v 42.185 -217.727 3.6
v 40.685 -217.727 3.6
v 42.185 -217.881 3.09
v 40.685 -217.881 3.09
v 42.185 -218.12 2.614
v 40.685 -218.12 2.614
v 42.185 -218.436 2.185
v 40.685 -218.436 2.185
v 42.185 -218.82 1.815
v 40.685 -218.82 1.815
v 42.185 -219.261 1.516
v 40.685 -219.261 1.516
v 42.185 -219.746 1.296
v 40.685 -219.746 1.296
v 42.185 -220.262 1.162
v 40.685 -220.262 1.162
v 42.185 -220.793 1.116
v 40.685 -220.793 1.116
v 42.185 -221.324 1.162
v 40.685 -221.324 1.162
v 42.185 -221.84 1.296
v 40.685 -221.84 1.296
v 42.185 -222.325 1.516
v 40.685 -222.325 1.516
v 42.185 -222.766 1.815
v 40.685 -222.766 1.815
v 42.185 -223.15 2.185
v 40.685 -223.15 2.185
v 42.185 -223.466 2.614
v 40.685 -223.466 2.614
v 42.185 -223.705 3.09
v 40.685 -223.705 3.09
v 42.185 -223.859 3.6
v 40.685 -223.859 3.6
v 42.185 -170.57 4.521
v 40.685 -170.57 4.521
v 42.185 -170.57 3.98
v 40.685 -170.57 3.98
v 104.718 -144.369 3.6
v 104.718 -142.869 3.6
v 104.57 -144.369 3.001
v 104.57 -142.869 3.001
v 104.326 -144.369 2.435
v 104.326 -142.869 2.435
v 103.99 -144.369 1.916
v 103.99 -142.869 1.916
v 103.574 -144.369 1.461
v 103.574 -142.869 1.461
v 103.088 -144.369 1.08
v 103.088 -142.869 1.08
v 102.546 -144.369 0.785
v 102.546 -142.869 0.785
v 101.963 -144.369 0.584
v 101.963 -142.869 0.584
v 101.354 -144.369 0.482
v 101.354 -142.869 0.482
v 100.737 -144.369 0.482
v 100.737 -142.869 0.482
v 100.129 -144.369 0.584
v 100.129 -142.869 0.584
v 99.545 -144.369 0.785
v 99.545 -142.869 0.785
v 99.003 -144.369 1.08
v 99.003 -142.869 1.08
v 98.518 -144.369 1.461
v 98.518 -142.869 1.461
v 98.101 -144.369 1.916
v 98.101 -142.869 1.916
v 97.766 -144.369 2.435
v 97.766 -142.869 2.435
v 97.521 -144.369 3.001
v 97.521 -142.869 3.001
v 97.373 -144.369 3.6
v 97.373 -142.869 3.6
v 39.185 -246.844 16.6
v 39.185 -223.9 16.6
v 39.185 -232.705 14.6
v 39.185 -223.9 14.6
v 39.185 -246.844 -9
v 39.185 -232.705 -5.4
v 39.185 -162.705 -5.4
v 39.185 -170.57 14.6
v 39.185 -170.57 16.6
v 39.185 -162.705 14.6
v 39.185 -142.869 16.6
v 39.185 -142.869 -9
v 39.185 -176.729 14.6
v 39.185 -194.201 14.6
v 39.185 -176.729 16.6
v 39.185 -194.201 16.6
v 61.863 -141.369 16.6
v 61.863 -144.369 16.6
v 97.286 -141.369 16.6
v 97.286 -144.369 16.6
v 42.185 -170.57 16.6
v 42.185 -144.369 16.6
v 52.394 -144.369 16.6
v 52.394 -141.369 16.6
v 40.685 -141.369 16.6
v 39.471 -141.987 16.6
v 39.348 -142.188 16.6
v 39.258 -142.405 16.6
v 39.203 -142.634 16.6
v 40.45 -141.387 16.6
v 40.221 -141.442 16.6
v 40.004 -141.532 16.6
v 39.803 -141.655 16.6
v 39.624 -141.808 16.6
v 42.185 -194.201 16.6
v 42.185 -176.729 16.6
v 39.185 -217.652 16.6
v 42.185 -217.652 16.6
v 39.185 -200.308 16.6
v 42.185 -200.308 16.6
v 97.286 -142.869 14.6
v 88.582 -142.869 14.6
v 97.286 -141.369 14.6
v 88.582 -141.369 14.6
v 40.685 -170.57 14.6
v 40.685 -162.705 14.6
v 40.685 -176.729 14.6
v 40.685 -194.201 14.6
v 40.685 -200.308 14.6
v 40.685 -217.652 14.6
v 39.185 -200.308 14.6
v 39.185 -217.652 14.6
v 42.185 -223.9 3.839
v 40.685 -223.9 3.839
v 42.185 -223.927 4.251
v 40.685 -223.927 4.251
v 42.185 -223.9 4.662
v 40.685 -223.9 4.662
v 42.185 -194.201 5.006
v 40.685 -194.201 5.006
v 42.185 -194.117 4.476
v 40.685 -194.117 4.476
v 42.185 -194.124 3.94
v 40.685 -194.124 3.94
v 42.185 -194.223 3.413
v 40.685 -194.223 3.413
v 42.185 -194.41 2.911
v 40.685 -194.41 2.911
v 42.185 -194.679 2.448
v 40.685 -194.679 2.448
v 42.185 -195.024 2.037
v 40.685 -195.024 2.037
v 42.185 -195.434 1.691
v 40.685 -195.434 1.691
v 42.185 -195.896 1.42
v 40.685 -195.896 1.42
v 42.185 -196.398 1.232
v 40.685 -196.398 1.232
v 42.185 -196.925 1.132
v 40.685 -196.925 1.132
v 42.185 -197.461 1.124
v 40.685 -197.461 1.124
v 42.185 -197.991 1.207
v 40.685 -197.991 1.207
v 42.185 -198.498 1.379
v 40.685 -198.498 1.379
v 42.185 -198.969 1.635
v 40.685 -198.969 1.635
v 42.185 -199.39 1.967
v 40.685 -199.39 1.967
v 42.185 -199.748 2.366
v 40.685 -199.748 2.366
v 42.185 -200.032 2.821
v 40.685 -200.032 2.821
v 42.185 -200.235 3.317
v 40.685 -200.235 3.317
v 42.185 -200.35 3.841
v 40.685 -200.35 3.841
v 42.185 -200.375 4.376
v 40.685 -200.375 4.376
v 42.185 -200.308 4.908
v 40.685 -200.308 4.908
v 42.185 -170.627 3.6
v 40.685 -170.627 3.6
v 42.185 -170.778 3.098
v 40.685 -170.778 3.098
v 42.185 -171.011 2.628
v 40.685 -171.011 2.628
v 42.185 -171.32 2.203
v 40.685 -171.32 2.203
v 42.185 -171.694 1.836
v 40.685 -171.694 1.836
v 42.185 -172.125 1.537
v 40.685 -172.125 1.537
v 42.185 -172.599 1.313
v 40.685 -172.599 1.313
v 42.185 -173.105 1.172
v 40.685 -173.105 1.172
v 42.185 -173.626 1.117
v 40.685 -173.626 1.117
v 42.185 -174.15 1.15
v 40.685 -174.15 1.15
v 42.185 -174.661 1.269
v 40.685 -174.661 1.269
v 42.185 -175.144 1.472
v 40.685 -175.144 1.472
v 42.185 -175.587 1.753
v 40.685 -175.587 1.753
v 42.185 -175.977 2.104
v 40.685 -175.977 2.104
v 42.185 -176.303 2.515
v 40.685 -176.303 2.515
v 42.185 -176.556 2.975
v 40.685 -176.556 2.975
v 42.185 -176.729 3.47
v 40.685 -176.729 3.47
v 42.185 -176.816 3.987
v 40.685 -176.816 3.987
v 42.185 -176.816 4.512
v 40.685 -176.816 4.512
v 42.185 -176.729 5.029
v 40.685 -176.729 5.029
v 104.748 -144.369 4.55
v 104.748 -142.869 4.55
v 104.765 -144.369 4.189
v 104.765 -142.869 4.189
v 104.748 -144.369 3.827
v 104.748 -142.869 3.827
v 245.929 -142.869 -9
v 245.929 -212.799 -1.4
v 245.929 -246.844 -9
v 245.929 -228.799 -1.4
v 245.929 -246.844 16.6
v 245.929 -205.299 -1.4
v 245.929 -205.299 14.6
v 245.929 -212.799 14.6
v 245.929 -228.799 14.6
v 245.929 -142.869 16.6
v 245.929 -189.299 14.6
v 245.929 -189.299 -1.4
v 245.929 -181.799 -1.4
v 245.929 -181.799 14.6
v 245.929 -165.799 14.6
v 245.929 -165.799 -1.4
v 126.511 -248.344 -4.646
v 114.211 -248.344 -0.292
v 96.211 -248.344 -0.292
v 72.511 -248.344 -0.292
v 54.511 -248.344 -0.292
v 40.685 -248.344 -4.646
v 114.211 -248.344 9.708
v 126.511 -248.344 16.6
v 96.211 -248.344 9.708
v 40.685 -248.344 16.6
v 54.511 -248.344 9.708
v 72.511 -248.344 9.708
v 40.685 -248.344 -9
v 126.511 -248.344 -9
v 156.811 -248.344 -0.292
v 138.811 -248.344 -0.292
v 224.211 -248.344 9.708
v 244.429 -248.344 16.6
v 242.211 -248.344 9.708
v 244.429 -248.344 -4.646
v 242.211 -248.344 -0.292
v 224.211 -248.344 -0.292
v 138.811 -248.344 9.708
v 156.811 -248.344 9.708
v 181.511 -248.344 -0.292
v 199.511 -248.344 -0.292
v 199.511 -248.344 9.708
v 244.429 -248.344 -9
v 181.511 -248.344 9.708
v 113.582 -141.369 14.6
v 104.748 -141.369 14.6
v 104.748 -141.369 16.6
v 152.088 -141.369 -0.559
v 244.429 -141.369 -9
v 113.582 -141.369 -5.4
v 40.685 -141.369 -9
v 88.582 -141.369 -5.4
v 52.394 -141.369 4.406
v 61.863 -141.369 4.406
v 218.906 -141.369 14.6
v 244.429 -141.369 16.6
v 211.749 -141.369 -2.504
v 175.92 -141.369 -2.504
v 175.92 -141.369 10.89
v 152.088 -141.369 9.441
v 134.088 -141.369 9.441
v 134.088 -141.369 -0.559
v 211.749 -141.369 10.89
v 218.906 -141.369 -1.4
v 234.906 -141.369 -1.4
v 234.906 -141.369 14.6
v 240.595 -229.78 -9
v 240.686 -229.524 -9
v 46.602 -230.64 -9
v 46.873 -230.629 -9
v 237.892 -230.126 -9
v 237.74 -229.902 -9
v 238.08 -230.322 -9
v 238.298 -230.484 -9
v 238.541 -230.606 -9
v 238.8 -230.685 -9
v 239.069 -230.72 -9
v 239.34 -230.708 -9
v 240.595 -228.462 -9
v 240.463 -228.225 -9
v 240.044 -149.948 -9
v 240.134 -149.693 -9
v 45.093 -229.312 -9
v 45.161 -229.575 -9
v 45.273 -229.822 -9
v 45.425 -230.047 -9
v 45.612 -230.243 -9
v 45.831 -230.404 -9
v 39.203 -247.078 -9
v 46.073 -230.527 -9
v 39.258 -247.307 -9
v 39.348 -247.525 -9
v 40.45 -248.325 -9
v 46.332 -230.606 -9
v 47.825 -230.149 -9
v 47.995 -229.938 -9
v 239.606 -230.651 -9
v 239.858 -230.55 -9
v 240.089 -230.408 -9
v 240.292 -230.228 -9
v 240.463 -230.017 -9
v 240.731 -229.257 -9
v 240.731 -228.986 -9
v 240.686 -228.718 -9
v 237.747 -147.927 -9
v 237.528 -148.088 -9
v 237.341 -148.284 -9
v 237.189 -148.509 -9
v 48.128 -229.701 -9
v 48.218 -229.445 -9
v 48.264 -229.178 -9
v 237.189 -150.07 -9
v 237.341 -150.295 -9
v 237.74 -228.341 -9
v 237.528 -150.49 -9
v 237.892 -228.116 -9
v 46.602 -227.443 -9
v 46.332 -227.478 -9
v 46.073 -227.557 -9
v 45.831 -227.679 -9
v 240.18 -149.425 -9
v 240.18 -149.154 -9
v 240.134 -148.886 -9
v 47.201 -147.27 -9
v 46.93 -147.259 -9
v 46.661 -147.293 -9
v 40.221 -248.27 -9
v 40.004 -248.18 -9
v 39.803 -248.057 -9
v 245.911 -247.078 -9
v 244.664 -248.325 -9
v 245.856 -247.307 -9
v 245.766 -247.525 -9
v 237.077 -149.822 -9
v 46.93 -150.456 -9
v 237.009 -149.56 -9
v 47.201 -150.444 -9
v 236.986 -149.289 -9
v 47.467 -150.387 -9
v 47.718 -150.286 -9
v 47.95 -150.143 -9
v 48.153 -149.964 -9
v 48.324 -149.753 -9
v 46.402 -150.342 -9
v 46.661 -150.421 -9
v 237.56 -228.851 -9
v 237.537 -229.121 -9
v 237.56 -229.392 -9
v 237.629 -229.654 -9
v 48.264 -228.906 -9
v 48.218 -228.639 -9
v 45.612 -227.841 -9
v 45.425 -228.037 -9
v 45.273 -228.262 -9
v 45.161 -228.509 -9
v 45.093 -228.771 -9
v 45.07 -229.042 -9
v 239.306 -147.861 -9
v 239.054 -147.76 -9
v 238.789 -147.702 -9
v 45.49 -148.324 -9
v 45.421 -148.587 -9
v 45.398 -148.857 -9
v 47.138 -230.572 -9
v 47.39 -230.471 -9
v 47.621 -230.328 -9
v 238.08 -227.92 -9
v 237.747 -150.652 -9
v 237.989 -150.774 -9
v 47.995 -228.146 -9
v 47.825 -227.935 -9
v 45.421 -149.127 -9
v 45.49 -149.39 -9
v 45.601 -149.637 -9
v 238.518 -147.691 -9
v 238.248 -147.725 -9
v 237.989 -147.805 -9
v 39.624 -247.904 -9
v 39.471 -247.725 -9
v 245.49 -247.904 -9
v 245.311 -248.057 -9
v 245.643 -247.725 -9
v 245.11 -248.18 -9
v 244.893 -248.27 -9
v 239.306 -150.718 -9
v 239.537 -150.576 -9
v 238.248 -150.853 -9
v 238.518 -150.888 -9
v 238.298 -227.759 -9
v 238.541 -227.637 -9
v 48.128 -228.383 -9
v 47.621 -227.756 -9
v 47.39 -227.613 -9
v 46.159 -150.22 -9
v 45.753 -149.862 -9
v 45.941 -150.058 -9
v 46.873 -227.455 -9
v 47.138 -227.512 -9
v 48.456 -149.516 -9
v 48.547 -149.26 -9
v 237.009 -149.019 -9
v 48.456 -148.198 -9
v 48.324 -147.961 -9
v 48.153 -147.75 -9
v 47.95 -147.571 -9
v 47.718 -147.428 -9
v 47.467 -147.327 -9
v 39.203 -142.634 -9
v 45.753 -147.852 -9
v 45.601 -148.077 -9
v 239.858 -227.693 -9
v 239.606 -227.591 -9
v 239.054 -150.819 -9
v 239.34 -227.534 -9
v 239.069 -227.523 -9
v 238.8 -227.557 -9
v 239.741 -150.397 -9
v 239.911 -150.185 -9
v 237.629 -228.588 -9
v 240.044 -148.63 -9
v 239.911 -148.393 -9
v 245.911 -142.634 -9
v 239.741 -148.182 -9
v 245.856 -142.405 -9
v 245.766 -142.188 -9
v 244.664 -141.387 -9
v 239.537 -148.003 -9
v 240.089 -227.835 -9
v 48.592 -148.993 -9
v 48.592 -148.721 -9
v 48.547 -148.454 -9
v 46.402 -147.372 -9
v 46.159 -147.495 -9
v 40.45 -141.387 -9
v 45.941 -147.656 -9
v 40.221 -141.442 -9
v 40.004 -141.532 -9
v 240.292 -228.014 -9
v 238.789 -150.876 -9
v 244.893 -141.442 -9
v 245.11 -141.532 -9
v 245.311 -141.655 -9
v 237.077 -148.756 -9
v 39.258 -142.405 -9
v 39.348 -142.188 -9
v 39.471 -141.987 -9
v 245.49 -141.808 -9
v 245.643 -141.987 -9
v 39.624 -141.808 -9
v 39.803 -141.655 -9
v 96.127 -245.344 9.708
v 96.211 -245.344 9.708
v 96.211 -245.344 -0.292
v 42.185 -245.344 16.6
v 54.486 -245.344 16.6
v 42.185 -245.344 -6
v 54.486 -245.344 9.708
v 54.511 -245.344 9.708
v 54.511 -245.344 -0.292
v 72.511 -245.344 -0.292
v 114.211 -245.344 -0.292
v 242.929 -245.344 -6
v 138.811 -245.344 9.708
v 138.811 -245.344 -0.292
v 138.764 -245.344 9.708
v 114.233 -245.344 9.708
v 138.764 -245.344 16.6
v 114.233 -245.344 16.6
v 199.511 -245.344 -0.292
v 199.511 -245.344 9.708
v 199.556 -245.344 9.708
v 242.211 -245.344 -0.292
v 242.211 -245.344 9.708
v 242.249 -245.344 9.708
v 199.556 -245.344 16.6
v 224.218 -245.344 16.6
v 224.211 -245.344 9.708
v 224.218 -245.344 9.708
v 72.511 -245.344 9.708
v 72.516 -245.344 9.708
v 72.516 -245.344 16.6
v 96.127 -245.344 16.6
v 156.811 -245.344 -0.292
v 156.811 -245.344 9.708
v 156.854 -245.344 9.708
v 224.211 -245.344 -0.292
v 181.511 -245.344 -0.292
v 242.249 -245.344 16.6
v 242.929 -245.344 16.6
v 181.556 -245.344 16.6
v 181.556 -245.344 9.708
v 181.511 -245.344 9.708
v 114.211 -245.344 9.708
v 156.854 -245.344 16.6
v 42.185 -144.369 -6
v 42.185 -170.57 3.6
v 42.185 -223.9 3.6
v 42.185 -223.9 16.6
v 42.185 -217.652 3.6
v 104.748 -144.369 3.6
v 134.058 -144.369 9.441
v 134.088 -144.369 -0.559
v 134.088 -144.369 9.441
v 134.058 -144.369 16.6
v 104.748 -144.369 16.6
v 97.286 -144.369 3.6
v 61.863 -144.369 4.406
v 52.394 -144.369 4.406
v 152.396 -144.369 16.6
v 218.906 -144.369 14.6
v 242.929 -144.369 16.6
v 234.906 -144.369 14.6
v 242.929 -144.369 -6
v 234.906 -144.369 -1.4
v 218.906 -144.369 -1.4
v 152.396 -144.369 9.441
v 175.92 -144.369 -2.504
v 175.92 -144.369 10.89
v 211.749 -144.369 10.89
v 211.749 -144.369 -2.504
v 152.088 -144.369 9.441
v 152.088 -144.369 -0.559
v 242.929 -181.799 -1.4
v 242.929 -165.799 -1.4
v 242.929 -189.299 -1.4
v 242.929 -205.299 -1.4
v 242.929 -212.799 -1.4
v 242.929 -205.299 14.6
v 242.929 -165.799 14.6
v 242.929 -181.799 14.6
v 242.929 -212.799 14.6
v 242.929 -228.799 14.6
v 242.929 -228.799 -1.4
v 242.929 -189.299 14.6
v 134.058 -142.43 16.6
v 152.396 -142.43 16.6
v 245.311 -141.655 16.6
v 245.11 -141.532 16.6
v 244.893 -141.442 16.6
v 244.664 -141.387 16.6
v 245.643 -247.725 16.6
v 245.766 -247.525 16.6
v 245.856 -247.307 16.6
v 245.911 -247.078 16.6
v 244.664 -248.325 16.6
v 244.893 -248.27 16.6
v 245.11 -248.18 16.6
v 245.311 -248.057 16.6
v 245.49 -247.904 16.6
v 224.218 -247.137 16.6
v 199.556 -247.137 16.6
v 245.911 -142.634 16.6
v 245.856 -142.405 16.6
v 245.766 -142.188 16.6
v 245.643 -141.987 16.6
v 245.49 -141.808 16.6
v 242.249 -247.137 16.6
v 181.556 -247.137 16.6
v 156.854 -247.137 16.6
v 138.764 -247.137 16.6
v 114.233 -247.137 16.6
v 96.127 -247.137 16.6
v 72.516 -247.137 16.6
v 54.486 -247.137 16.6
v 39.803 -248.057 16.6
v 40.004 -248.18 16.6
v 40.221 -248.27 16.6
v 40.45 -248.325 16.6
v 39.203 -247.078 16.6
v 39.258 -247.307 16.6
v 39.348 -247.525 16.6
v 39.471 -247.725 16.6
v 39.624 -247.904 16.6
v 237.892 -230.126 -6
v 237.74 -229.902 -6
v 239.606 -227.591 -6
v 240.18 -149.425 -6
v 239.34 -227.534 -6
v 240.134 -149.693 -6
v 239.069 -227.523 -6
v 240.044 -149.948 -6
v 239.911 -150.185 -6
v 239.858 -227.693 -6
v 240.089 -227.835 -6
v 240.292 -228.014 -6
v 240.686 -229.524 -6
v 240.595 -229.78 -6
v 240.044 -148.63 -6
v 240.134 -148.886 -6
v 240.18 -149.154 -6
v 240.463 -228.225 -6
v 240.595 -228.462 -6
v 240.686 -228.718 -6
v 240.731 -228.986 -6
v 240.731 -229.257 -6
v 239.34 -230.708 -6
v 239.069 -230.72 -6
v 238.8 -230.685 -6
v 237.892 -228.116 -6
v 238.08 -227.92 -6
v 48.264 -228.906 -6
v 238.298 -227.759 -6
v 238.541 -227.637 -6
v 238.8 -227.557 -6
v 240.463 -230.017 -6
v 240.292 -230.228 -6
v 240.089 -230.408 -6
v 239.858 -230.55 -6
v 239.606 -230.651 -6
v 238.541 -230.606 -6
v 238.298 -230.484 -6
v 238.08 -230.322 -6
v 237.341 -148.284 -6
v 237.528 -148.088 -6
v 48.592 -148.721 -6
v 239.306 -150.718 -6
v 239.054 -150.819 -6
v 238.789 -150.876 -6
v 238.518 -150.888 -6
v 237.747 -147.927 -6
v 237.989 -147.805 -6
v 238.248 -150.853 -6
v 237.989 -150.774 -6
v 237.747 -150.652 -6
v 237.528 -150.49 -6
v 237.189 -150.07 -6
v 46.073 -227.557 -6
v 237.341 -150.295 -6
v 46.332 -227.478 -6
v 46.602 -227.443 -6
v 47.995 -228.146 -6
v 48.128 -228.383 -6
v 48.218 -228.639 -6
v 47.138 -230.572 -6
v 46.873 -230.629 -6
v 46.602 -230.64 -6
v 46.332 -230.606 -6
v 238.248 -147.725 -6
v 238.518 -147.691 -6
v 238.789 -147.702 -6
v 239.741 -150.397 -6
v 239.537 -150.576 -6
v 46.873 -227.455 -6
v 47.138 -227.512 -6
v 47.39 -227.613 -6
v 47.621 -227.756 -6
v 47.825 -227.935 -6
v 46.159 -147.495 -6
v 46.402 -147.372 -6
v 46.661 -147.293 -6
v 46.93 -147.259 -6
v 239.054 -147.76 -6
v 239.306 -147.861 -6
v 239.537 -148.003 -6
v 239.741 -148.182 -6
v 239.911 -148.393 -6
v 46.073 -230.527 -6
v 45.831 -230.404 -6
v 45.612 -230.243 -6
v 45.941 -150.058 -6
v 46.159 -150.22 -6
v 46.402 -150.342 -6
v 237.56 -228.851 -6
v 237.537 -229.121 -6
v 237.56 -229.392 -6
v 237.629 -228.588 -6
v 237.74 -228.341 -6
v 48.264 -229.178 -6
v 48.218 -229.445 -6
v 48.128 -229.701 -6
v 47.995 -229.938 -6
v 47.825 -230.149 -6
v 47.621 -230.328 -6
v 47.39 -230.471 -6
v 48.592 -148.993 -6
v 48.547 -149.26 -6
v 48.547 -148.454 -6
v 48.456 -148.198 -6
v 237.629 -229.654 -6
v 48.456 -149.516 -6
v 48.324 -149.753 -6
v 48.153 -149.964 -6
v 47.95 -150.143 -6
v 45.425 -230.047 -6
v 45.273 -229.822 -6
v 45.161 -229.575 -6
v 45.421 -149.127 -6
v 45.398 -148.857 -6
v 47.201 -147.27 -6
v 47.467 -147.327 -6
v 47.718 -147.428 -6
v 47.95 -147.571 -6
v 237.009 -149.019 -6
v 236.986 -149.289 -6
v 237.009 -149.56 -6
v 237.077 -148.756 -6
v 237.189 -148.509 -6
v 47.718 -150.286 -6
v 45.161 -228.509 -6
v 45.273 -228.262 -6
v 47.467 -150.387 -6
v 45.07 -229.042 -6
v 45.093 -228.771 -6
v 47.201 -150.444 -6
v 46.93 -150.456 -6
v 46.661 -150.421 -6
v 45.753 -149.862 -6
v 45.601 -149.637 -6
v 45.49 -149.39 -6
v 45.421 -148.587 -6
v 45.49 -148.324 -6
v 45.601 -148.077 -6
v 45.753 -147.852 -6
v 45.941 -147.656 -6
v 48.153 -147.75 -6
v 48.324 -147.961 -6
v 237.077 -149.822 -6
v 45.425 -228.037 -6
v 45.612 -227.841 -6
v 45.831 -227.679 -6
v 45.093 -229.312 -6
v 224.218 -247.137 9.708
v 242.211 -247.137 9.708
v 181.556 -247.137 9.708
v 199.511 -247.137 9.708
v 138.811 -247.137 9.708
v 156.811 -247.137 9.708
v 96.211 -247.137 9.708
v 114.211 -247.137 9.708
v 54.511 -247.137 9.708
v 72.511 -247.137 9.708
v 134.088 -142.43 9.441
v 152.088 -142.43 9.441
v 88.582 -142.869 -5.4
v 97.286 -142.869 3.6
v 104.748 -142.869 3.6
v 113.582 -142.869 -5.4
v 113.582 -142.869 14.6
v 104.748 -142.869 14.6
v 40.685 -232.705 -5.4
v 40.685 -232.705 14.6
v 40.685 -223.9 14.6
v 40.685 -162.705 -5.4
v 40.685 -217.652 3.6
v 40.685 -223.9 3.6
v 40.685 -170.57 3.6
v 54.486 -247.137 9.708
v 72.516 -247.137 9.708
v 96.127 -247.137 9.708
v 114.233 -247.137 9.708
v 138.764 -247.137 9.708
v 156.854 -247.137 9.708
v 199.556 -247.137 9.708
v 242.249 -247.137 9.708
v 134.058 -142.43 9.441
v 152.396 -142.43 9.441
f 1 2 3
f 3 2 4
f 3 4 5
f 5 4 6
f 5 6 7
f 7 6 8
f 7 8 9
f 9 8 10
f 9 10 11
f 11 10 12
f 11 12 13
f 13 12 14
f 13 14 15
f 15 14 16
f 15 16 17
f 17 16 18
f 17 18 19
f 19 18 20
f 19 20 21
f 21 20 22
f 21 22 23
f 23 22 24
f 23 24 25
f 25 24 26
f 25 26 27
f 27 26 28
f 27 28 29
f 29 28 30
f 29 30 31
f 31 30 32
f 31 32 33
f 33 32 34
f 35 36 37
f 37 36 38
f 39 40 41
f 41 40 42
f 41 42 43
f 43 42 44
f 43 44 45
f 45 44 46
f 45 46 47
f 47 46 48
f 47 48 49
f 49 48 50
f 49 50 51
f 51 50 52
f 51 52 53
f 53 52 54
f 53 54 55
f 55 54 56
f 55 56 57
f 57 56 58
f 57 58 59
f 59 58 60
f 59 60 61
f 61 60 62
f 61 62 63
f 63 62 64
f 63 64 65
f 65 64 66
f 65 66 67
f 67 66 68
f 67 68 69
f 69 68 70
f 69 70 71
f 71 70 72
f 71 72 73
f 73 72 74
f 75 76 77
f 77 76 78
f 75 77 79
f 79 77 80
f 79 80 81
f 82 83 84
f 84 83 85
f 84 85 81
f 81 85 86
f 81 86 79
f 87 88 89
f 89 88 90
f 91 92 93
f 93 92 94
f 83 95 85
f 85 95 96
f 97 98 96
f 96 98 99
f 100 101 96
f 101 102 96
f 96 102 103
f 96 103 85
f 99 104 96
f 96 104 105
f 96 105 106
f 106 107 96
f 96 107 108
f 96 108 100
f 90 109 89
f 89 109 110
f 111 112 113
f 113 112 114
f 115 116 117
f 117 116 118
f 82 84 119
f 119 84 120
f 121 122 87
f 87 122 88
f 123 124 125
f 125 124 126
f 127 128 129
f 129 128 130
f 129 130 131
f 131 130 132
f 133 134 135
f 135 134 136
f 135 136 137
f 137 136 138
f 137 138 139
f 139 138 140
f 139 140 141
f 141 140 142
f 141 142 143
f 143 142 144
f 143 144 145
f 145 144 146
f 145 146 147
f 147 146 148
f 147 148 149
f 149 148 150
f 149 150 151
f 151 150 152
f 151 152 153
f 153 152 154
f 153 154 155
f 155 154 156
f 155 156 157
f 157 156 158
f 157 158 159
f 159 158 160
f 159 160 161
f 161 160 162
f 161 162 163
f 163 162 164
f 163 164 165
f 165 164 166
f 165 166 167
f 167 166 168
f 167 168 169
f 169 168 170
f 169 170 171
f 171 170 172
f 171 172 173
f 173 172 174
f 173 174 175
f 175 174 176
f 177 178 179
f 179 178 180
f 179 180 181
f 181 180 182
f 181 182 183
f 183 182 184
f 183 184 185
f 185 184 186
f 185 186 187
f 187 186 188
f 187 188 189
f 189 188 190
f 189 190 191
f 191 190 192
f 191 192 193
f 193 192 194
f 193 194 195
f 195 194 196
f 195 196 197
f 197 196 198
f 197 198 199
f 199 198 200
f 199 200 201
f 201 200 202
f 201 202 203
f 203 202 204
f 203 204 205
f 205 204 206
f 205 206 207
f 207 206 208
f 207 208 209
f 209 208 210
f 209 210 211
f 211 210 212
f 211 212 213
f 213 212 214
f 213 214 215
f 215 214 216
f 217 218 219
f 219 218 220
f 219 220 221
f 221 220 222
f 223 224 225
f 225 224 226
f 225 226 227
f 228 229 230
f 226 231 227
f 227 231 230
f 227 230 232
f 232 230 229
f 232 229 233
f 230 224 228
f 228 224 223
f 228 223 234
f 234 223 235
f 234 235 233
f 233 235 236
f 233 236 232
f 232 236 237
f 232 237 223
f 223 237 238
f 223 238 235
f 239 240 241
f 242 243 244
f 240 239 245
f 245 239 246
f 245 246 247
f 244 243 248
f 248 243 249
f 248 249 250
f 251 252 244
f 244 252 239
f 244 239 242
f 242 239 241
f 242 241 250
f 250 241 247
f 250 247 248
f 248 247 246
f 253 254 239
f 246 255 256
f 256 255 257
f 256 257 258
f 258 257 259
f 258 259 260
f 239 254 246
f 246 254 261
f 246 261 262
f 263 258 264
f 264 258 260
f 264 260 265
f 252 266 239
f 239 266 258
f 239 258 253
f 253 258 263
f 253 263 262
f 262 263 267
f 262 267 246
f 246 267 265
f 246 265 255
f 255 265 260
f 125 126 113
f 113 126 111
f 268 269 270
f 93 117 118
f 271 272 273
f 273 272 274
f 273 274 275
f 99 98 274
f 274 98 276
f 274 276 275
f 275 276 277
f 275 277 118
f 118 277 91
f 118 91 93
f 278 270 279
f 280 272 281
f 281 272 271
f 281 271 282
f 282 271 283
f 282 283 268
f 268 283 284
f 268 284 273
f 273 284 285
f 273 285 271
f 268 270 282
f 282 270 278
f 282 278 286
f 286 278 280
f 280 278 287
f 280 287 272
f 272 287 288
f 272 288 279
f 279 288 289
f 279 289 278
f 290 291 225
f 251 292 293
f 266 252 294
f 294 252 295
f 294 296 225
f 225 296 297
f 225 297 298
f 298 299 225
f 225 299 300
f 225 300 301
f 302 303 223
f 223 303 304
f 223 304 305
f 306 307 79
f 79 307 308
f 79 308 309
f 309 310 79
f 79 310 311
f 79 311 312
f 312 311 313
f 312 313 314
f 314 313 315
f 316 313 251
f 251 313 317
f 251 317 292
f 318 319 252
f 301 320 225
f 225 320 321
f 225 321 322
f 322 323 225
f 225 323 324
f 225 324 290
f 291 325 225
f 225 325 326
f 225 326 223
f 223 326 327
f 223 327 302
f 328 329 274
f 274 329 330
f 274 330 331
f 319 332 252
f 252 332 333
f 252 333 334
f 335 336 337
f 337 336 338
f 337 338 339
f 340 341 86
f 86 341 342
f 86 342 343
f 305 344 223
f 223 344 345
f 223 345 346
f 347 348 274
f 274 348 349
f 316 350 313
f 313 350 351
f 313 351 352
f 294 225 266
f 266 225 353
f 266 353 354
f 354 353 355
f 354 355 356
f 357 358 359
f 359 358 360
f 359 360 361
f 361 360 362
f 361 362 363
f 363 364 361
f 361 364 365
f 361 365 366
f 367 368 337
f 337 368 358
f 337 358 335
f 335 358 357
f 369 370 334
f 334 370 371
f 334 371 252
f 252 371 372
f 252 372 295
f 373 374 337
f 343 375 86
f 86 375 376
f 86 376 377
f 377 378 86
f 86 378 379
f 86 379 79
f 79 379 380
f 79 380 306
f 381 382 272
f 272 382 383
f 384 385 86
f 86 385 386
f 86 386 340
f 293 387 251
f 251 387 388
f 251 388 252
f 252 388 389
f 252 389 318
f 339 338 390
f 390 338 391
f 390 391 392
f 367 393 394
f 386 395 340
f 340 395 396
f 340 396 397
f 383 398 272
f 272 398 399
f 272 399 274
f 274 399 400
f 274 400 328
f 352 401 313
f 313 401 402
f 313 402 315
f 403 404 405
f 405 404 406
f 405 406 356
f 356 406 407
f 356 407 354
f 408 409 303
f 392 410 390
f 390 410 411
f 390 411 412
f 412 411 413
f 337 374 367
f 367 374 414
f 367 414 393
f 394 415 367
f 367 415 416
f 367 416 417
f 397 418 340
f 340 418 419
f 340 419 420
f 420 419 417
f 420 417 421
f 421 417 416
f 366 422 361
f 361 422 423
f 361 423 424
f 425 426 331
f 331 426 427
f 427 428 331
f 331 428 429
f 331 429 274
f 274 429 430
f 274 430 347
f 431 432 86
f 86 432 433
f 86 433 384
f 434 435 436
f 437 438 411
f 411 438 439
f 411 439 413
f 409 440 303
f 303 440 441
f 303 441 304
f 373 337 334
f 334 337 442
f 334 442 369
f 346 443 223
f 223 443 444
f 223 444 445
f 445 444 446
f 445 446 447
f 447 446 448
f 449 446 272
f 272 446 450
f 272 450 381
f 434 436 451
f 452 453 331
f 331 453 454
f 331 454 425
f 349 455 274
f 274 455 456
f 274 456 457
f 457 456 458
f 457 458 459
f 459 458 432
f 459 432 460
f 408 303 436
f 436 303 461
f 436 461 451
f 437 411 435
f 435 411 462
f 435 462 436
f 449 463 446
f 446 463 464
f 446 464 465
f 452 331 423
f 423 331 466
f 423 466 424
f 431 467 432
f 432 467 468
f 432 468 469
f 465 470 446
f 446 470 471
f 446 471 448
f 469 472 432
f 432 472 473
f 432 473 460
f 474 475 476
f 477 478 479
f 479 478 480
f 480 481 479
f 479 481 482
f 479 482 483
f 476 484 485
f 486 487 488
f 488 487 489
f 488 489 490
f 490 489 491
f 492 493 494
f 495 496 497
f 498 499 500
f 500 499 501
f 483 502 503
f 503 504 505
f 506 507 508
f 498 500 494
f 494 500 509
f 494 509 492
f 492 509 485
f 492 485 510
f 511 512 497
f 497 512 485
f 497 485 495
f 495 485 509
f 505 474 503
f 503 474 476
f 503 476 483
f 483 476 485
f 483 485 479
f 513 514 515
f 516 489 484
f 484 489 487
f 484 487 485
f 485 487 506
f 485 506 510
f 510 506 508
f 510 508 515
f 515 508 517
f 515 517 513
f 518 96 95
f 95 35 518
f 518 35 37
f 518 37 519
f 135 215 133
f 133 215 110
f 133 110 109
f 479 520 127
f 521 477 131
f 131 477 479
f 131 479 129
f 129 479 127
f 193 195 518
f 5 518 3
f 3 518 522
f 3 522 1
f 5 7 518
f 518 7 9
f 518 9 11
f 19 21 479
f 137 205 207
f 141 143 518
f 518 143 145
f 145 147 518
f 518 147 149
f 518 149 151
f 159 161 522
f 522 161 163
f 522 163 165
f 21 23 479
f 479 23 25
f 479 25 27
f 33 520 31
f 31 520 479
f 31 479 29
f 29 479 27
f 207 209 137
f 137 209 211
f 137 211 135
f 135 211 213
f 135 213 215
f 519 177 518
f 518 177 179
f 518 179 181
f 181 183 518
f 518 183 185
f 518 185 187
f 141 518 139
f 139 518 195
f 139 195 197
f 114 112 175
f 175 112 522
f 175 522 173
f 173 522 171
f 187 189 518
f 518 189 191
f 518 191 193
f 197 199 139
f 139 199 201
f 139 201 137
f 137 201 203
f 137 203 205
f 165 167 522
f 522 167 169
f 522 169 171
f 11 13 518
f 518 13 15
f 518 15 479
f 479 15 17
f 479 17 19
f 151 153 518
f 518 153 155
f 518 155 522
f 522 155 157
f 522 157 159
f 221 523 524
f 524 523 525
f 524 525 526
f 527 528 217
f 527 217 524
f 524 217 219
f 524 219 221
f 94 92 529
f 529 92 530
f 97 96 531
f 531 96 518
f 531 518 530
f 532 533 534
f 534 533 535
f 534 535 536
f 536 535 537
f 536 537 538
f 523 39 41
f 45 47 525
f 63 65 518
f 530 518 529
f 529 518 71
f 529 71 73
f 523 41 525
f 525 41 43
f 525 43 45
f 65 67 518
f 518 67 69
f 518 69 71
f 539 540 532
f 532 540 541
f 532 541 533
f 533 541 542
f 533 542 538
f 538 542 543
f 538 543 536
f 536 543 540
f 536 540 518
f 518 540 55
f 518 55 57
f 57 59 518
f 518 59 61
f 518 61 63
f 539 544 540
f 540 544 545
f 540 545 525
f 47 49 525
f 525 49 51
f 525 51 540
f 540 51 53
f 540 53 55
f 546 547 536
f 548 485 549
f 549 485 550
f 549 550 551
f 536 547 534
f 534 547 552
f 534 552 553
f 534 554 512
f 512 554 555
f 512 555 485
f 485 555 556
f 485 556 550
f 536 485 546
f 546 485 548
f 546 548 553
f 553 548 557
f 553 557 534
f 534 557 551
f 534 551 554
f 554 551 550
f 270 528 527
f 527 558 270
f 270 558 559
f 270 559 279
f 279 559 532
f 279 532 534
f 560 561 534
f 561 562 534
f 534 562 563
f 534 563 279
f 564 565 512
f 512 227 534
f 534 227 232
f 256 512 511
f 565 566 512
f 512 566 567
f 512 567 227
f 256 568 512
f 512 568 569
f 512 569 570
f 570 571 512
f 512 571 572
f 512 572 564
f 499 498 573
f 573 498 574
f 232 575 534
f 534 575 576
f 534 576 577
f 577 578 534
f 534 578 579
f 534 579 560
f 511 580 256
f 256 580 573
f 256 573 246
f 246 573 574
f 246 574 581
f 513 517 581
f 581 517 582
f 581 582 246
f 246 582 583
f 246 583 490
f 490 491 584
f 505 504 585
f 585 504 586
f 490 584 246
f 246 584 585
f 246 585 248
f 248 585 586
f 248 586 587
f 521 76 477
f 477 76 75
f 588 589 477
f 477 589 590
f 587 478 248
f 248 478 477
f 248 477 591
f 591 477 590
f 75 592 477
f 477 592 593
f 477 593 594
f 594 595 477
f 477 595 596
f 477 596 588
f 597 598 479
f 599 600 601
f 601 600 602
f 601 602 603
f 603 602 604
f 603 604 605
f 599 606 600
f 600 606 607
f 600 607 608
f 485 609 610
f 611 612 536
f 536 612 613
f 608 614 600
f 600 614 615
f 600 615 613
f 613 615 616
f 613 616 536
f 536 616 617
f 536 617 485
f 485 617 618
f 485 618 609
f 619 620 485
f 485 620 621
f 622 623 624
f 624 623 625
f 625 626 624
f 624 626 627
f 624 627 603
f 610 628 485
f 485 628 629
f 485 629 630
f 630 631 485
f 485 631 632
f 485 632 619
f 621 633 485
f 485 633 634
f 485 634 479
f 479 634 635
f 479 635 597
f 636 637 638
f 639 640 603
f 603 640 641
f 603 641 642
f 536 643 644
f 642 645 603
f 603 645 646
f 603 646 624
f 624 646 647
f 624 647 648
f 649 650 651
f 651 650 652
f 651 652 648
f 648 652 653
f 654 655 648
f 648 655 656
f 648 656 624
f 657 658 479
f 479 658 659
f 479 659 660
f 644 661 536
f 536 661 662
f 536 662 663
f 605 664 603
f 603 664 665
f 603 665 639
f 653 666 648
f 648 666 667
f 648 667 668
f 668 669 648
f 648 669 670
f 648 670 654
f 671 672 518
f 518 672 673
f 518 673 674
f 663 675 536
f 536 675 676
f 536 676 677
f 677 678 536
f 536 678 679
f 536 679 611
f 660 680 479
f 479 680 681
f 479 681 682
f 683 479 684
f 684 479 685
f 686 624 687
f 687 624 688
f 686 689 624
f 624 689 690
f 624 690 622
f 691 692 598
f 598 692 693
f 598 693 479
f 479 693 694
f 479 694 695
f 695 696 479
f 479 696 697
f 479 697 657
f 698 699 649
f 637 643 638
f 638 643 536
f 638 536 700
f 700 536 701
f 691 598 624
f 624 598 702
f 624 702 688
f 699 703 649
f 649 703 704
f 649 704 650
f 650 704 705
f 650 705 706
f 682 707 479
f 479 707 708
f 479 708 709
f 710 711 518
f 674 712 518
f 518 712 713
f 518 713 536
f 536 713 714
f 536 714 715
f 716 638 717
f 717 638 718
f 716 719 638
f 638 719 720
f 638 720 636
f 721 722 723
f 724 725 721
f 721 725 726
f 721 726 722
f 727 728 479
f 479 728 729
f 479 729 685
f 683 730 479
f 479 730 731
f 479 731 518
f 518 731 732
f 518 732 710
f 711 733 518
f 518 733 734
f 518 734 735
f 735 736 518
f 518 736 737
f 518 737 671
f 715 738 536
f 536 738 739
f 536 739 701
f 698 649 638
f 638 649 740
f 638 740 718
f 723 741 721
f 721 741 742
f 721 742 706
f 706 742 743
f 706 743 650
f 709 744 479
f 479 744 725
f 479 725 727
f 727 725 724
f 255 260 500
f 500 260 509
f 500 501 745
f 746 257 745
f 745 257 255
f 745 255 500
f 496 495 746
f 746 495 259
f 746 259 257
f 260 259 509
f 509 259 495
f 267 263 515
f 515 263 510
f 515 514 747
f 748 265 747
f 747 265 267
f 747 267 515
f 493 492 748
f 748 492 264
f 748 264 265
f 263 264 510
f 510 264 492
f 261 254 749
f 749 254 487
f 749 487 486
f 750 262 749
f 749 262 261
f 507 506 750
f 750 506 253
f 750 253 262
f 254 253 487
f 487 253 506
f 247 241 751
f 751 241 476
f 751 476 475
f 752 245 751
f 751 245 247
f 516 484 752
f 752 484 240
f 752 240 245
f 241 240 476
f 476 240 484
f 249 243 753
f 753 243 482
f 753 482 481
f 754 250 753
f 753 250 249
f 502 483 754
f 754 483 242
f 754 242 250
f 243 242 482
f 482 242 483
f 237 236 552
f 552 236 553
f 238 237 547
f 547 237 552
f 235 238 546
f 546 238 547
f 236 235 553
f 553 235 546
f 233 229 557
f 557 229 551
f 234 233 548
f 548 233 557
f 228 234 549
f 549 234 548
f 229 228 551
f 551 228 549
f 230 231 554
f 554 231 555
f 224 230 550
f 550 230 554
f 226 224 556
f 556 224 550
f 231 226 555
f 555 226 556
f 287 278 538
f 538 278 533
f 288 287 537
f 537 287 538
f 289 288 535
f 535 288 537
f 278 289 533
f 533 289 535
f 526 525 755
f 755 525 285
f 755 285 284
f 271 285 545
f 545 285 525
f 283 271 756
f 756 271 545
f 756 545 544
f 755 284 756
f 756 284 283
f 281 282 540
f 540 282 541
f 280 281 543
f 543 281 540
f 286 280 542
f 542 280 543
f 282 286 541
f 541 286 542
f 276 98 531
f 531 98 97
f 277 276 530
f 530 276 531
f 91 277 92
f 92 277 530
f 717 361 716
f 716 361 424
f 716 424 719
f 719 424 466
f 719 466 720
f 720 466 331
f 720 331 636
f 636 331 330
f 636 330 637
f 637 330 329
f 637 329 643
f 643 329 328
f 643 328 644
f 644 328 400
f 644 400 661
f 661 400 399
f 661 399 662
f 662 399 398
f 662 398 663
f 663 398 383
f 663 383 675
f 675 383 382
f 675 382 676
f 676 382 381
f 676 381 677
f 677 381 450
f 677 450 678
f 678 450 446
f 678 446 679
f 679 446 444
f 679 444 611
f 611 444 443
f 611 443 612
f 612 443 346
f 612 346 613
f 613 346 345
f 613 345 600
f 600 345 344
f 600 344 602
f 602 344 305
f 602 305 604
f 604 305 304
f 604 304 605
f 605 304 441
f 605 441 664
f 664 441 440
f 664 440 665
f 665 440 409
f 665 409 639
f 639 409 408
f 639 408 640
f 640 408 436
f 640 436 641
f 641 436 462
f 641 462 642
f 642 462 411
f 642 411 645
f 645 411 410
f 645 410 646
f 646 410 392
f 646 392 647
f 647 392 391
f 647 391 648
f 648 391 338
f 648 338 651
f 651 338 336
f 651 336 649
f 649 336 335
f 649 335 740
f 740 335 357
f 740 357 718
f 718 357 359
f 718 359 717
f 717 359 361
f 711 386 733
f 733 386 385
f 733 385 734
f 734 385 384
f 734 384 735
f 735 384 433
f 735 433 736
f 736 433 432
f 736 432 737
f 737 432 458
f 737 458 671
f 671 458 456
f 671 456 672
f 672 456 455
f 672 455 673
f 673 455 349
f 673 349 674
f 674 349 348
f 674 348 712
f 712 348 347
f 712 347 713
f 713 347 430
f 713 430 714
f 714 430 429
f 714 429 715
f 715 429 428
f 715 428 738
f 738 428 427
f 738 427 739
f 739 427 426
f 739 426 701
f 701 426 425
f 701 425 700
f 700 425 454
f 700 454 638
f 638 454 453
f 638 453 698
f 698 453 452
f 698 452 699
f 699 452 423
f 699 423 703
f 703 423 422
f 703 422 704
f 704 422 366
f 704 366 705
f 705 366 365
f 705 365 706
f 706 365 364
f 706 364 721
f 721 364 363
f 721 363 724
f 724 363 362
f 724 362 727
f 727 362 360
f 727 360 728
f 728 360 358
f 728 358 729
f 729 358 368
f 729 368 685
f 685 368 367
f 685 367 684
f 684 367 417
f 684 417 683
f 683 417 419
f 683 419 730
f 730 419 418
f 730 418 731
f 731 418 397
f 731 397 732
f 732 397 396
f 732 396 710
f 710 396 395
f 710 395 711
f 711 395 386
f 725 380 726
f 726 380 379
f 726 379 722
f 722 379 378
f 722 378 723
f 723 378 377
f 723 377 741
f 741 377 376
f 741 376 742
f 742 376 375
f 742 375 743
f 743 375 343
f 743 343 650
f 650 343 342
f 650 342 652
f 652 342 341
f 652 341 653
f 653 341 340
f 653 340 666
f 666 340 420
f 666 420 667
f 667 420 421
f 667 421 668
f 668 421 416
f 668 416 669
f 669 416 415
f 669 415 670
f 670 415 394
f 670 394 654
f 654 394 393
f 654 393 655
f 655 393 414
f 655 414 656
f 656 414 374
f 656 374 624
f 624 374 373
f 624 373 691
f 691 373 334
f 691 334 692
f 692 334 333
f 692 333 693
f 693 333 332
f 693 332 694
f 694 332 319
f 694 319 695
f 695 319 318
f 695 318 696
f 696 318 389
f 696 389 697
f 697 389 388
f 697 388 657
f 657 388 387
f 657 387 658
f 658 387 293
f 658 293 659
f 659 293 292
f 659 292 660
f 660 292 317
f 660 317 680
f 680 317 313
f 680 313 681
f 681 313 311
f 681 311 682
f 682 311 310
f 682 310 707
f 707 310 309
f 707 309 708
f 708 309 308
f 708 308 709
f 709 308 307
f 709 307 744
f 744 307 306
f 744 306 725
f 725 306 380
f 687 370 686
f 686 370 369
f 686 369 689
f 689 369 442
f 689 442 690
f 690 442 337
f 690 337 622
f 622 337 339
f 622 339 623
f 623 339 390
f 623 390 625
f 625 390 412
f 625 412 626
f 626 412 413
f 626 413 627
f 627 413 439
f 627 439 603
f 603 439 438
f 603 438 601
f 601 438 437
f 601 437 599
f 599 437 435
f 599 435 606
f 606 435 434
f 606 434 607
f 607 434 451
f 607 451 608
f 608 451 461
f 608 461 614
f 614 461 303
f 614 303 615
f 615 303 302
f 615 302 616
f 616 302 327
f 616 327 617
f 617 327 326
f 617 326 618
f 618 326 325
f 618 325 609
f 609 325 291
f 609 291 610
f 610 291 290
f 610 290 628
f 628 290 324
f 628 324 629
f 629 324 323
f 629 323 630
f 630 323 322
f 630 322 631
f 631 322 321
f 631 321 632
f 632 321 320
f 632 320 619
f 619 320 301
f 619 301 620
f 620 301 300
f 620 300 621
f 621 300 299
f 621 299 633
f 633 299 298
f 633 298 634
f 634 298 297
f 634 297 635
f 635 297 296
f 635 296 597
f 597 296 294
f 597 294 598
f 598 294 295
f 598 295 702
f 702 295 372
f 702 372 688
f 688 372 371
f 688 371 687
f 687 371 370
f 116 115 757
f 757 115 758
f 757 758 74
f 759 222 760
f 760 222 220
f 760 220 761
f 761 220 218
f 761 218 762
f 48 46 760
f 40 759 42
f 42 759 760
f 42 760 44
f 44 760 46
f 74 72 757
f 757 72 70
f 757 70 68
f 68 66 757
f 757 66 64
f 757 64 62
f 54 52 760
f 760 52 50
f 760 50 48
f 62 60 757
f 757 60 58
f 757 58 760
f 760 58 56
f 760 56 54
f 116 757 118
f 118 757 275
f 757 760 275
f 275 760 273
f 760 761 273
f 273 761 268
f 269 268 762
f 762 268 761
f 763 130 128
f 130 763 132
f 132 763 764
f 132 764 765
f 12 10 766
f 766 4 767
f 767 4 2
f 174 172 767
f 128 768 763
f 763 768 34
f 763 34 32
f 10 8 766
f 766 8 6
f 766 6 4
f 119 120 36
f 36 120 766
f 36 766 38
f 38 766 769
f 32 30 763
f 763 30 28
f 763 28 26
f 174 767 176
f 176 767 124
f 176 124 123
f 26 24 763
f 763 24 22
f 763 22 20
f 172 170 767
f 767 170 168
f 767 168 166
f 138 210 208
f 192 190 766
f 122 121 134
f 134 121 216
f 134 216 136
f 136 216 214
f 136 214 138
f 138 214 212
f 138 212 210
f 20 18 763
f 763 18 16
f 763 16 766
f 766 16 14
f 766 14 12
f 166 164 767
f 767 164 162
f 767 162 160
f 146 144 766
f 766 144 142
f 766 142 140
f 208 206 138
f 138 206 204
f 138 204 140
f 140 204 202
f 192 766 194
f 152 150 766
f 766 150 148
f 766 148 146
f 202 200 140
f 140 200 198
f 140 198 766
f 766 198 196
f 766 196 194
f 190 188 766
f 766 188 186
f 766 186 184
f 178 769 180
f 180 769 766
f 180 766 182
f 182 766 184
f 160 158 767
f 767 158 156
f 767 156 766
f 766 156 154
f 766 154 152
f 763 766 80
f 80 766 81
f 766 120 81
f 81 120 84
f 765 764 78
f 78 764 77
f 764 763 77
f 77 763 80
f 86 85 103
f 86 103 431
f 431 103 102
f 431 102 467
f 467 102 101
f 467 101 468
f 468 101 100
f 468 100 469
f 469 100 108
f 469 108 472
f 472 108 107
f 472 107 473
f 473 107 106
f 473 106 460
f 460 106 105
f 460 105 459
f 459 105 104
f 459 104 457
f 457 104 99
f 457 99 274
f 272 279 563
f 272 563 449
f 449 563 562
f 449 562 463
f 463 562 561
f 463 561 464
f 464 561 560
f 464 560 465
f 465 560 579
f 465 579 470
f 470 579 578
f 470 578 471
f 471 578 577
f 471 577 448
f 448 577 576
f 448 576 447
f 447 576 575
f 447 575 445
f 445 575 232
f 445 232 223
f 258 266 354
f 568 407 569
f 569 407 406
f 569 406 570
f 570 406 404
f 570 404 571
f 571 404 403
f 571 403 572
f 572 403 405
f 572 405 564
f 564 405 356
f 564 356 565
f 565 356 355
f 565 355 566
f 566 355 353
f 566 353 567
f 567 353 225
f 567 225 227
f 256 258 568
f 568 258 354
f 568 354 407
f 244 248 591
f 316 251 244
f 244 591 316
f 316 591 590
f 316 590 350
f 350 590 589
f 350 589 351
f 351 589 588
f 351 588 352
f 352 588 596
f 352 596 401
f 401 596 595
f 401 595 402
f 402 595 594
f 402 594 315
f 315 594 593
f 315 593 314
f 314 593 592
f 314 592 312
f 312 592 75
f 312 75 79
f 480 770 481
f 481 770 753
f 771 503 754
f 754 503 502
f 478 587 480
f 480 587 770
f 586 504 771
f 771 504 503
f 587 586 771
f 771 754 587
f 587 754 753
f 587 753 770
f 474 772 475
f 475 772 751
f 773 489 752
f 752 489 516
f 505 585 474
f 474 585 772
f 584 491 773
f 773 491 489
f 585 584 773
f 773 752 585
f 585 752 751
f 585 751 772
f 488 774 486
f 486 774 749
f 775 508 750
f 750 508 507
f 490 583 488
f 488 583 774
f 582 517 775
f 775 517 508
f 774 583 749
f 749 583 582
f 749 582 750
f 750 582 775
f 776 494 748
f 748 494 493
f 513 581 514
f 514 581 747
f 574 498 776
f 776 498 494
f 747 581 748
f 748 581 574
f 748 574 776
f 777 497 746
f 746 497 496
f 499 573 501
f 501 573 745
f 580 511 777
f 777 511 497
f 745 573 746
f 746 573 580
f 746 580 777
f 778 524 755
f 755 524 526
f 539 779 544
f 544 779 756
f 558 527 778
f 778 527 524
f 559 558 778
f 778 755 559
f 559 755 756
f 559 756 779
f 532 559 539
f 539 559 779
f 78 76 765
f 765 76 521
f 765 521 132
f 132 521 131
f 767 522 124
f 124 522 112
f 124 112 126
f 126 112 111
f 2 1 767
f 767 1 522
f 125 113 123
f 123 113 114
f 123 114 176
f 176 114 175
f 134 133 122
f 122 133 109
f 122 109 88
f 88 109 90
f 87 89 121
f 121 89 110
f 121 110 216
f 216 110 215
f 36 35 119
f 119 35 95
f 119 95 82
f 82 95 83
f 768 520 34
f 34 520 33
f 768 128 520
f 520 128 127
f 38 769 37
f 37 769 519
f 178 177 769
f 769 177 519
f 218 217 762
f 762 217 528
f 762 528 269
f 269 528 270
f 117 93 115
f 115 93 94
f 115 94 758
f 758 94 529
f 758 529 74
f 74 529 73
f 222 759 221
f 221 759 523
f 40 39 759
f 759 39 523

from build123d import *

# Parameters (mm, degrees)
SKETCH_1_W           = 206.744673609
SKETCH_1_H           = 106.97480061
EXTRUDE_1_DEPTH      = 3
SKETCH_3_W           = 200.744673609
SKETCH_3_H           = 100.97480061
EXTRUDE_2_DEPTH      = 22.6000508
SKETCH_4_W           = 18
SKETCH_4_H           = 10
CUT_EXTRUDE_1_DEPTH  = 5
SKETCH_6_W           = 16
SKETCH_6_H           = 16
CUT_EXTRUDE_2_DEPTH  = 5
SKETCH_7_W           = 16
SKETCH_7_H           = 16
CUT_EXTRUDE_3_DEPTH  = 5
SKETCH_8_W           = 18
SKETCH_8_H           = 10
CUT_EXTRUDE_4_DEPTH  = 5
SKETCH_9_W           = 35.828584262
SKETCH_9_H           = 13.394073463
CUT_EXTRUDE_5_DEPTH  = 5
SKETCH_10_R          = 3.719289999
CUT_EXTRUDE_6_DEPTH  = 5
SKETCH_11_W          = 9.469470229
SKETCH_11_H          = 12.194282659
CUT_EXTRUDE_7_DEPTH  = 5
SKETCH_12_R          = 3.134321658
CUT_EXTRUDE_8_DEPTH  = 5
SKETCH_13_R          = 1.6
CUT_EXTRUDE_9_DEPTH  = 5
SKETCH_15_W          = 25
SKETCH_15_H          = 20
CUT_EXTRUDE_11_DEPTH = 1.5
SKETCH_16_W          = 20
SKETCH_16_H          = 70
CUT_EXTRUDE_12_DEPTH = 1.5
FILLET_1_R           = 1.5
SKETCH_17_W          = 18.030255685
SKETCH_17_H          = 1.793339536
SKETCH_17_W_2        = 18.10659189
SKETCH_17_W_3        = 18.089855477
SKETCH_17_W_4        = 17.999756417
SKETCH_17_W_5        = 18.030454167
CUT_EXTRUDE_13_DEPTH = 6.89172601
SKETCH_18_W          = 18.338169952
SKETCH_18_H          = 1.939199609
CUT_EXTRUDE_14_DEPTH = 7.158781029
SKETCH_21_W          = 7.461807672
SKETCH_21_H          = 3.5
SKETCH_21_W_2        = 3.5
SKETCH_21_H_2        = 6.158755504
SKETCH_21_H_3        = 6.106655877
SKETCH_21_H_4        = 6.247919092
CUT_EXTRUDE_16_DEPTH = 13


with BuildPart() as part:
    # 草图1 → 凸台-拉伸1 (new body)
    with BuildSketch(Plane(origin=(0, 0, -6), x_dir=(-1, 0, 0), z_dir=(0, 0, -1))):
        with Locations((-142.557122174, -194.856389383)):
            Rectangle(SKETCH_1_W, SKETCH_1_H)
    extrude(amount=EXTRUDE_1_DEPTH)

    # 草图3 → 凸台-拉伸2 (add)
    with BuildSketch(Plane.XY.offset(-6)):
        Polygon((39.18478537, -141.368989078), (245.929458979, -141.368989078), (245.929458979, -248.343789688), (39.18478537, -248.343789688), (39.18478537, -243.18233024), (39.18478537, -146.483402372), align=None)
        with Locations((142.557122174, -194.856389383)):
            Rectangle(SKETCH_3_W, SKETCH_3_H, mode=Mode.SUBTRACT)
    extrude(amount=EXTRUDE_2_DEPTH)

    # 草图4 → 切除-拉伸1 (cut)
    with BuildSketch(Plane.XZ.offset(248.343789688)):
        with Locations((105.2106038, 4.708324791)):
            Rectangle(SKETCH_4_W, SKETCH_4_H)
        with Locations((63.5106038, 4.708324791)):
            Rectangle(SKETCH_4_W, SKETCH_4_H)
        with Locations((147.8106038, 4.708324791)):
            Rectangle(SKETCH_4_W, SKETCH_4_H)
        with Locations((190.5106038, 4.708324791)):
            Rectangle(SKETCH_4_W, SKETCH_4_H)
        with Locations((233.2106038, 4.708324791)):
            Rectangle(SKETCH_4_W, SKETCH_4_H)
    extrude(amount=-CUT_EXTRUDE_1_DEPTH, mode=Mode.SUBTRACT)

    # 草图6 → 切除-拉伸2 (cut)
    with BuildSketch(Plane(origin=(245.929458979, 0, 0), x_dir=(0, 0, -1), z_dir=(1, 0, 0))):
        with Locations((-6.6000508, -220.799301723)):
            Rectangle(SKETCH_6_W, SKETCH_6_H)
        with Locations((-6.6000508, -197.299301723)):
            Rectangle(SKETCH_6_W, SKETCH_6_H)
        with Locations((-6.6000508, -173.799301723)):
            Rectangle(SKETCH_6_W, SKETCH_6_H)
    extrude(amount=-CUT_EXTRUDE_2_DEPTH, mode=Mode.SUBTRACT)

    # 草图7 → 切除-拉伸3 (cut)
    with BuildSketch(Plane(origin=(0, -141.368989078, 0), x_dir=(1, 0, 0), z_dir=(0, 1, 0))):
        with Locations((226.905896319, -6.6000508)):
            Rectangle(SKETCH_7_W, SKETCH_7_H)
    extrude(amount=-CUT_EXTRUDE_3_DEPTH, mode=Mode.SUBTRACT)

    # 草图8 → 切除-拉伸4 (cut)
    with BuildSketch(Plane(origin=(0, -141.368989078, 0), x_dir=(1, 0, 0), z_dir=(0, 1, 0))):
        with Locations((143.087906607, -4.441269771)):
            Rectangle(SKETCH_8_W, SKETCH_8_H)
    extrude(amount=-CUT_EXTRUDE_4_DEPTH, mode=Mode.SUBTRACT)

    # 草图9 → 切除-拉伸5 (cut)
    with BuildSketch(Plane(origin=(0, -141.368989078, 0), x_dir=(1, 0, 0), z_dir=(0, 1, 0))):
        with Locations((193.834394064, -4.192873823)):
            Rectangle(SKETCH_9_W, SKETCH_9_H)
    extrude(amount=-CUT_EXTRUDE_5_DEPTH, mode=Mode.SUBTRACT)

    # 草图10 → 切除-拉伸6 (cut)
    with BuildSketch(Plane(origin=(0, -141.368989078, 0), x_dir=(1, 0, 0), z_dir=(0, 1, 0))):
        with Locations(Location((101.045841124, -4.188653157, 0), (0, 0, 270))):
            Circle(SKETCH_10_R)
    extrude(amount=-CUT_EXTRUDE_6_DEPTH, mode=Mode.SUBTRACT)

    # 草图11 → 切除-拉伸7 (cut)
    with BuildSketch(Plane(origin=(0, -141.368989078, 0), x_dir=(1, 0, 0), z_dir=(0, 1, 0))):
        with Locations((57.128440025, -10.502909471)):
            Rectangle(SKETCH_11_W, SKETCH_11_H)
    extrude(amount=-CUT_EXTRUDE_7_DEPTH, mode=Mode.SUBTRACT)

    # 草图12 → 切除-拉伸8 (cut)
    with BuildSketch(Plane.ZY.offset(-39.18478537)):
        with Locations((4.250612207, -173.693029578)):
            Circle(SKETCH_12_R)
        with Locations((4.250612207, -197.243029578)):
            Circle(SKETCH_12_R)
        with Locations((4.250612207, -220.793029578)):
            Circle(SKETCH_12_R)
    extrude(amount=-CUT_EXTRUDE_8_DEPTH, mode=Mode.SUBTRACT)

    # 草图13 → 切除-拉伸9 (cut)
    with BuildSketch(Plane(origin=(0, 0, -9), x_dir=(-1, 0, 0), z_dir=(0, 0, -1))):
        with Locations((-238.585543847, -149.289415757)):
            Circle(SKETCH_13_R)
        with Locations((-46.99814318, -148.85706783)):
            Circle(SKETCH_13_R)
        with Locations((-46.669564212, -229.041899724)):
            Circle(SKETCH_13_R)
        with Locations((-239.137231318, -229.121228359)):
            Circle(SKETCH_13_R)
    extrude(amount=-CUT_EXTRUDE_9_DEPTH, mode=Mode.SUBTRACT)

    # 草图15 → 切除-拉伸11 (cut)
    with BuildSketch(Plane(origin=(0, -141.368989078, 0), x_dir=(1, 0, 0), z_dir=(0, 1, 0))):
        with Locations((101.081540793, -4.6000508)):
            Rectangle(SKETCH_15_W, SKETCH_15_H)
    extrude(amount=-CUT_EXTRUDE_11_DEPTH, mode=Mode.SUBTRACT)

    # 草图16 → 切除-拉伸12 (cut)
    with BuildSketch(Plane.ZY.offset(-39.18478537)):
        with Locations((4.6000508, -197.704987162)):
            Rectangle(SKETCH_16_W, SKETCH_16_H)
    extrude(amount=-CUT_EXTRUDE_12_DEPTH, mode=Mode.SUBTRACT)

    # 圆角1
    fillet_1_edges = [part.edges().sort_by_distance(p)[0] for p in [
        (245.929458979, -141.368989078, 3.8000254),
        (39.18478537, -141.368989078, 3.8000254),
        (39.18478537, -248.343789688, 3.8000254),
        (245.929458979, -248.343789688, 3.8000254),
    ]]
    fillet(fillet_1_edges, radius=FILLET_1_R)

    # 草图17 → 切除-拉伸13 (cut)
    with BuildSketch(Plane.XY.offset(16.6000508)):
        with Locations((63.500922097, -246.240459456)):
            Rectangle(SKETCH_17_W, SKETCH_17_H)
        with Locations((105.179998956, -246.240459456)):
            Rectangle(SKETCH_17_W_2, SKETCH_17_H)
        with Locations((147.809231135, -246.240459456)):
            Rectangle(SKETCH_17_W_3, SKETCH_17_H)
        with Locations((190.556004567, -246.240459456)):
            Rectangle(SKETCH_17_W_4, SKETCH_17_H)
        with Locations((233.233676321, -246.240459456)):
            Rectangle(SKETCH_17_W_5, SKETCH_17_H)
    extrude(amount=-CUT_EXTRUDE_13_DEPTH, mode=Mode.SUBTRACT)

    # 草图18 → 切除-拉伸14 (cut)
    with BuildSketch(Plane.XY.offset(16.6000508)):
        with Locations((143.227232083, -143.399389273)):
            Rectangle(SKETCH_18_W, SKETCH_18_H)
    extrude(amount=-CUT_EXTRUDE_14_DEPTH, mode=Mode.SUBTRACT)

    # 草图21 → 切除-拉伸16 (cut)
    with BuildSketch(Plane.XY.offset(16.6000508)):
        with Locations((101.01663333, -143.118989078)):
            Rectangle(SKETCH_21_W, SKETCH_21_H)
        with Locations((40.93478537, -173.649755278)):
            Rectangle(SKETCH_21_W_2, SKETCH_21_H_2)
        with Locations((40.93478537, -197.254331907)):
            Rectangle(SKETCH_21_W_2, SKETCH_21_H_3)
        with Locations((40.93478537, -220.776300492)):
            Rectangle(SKETCH_21_W_2, SKETCH_21_H_4)
    extrude(amount=-CUT_EXTRUDE_16_DEPTH, mode=Mode.SUBTRACT)


solid = part.part
